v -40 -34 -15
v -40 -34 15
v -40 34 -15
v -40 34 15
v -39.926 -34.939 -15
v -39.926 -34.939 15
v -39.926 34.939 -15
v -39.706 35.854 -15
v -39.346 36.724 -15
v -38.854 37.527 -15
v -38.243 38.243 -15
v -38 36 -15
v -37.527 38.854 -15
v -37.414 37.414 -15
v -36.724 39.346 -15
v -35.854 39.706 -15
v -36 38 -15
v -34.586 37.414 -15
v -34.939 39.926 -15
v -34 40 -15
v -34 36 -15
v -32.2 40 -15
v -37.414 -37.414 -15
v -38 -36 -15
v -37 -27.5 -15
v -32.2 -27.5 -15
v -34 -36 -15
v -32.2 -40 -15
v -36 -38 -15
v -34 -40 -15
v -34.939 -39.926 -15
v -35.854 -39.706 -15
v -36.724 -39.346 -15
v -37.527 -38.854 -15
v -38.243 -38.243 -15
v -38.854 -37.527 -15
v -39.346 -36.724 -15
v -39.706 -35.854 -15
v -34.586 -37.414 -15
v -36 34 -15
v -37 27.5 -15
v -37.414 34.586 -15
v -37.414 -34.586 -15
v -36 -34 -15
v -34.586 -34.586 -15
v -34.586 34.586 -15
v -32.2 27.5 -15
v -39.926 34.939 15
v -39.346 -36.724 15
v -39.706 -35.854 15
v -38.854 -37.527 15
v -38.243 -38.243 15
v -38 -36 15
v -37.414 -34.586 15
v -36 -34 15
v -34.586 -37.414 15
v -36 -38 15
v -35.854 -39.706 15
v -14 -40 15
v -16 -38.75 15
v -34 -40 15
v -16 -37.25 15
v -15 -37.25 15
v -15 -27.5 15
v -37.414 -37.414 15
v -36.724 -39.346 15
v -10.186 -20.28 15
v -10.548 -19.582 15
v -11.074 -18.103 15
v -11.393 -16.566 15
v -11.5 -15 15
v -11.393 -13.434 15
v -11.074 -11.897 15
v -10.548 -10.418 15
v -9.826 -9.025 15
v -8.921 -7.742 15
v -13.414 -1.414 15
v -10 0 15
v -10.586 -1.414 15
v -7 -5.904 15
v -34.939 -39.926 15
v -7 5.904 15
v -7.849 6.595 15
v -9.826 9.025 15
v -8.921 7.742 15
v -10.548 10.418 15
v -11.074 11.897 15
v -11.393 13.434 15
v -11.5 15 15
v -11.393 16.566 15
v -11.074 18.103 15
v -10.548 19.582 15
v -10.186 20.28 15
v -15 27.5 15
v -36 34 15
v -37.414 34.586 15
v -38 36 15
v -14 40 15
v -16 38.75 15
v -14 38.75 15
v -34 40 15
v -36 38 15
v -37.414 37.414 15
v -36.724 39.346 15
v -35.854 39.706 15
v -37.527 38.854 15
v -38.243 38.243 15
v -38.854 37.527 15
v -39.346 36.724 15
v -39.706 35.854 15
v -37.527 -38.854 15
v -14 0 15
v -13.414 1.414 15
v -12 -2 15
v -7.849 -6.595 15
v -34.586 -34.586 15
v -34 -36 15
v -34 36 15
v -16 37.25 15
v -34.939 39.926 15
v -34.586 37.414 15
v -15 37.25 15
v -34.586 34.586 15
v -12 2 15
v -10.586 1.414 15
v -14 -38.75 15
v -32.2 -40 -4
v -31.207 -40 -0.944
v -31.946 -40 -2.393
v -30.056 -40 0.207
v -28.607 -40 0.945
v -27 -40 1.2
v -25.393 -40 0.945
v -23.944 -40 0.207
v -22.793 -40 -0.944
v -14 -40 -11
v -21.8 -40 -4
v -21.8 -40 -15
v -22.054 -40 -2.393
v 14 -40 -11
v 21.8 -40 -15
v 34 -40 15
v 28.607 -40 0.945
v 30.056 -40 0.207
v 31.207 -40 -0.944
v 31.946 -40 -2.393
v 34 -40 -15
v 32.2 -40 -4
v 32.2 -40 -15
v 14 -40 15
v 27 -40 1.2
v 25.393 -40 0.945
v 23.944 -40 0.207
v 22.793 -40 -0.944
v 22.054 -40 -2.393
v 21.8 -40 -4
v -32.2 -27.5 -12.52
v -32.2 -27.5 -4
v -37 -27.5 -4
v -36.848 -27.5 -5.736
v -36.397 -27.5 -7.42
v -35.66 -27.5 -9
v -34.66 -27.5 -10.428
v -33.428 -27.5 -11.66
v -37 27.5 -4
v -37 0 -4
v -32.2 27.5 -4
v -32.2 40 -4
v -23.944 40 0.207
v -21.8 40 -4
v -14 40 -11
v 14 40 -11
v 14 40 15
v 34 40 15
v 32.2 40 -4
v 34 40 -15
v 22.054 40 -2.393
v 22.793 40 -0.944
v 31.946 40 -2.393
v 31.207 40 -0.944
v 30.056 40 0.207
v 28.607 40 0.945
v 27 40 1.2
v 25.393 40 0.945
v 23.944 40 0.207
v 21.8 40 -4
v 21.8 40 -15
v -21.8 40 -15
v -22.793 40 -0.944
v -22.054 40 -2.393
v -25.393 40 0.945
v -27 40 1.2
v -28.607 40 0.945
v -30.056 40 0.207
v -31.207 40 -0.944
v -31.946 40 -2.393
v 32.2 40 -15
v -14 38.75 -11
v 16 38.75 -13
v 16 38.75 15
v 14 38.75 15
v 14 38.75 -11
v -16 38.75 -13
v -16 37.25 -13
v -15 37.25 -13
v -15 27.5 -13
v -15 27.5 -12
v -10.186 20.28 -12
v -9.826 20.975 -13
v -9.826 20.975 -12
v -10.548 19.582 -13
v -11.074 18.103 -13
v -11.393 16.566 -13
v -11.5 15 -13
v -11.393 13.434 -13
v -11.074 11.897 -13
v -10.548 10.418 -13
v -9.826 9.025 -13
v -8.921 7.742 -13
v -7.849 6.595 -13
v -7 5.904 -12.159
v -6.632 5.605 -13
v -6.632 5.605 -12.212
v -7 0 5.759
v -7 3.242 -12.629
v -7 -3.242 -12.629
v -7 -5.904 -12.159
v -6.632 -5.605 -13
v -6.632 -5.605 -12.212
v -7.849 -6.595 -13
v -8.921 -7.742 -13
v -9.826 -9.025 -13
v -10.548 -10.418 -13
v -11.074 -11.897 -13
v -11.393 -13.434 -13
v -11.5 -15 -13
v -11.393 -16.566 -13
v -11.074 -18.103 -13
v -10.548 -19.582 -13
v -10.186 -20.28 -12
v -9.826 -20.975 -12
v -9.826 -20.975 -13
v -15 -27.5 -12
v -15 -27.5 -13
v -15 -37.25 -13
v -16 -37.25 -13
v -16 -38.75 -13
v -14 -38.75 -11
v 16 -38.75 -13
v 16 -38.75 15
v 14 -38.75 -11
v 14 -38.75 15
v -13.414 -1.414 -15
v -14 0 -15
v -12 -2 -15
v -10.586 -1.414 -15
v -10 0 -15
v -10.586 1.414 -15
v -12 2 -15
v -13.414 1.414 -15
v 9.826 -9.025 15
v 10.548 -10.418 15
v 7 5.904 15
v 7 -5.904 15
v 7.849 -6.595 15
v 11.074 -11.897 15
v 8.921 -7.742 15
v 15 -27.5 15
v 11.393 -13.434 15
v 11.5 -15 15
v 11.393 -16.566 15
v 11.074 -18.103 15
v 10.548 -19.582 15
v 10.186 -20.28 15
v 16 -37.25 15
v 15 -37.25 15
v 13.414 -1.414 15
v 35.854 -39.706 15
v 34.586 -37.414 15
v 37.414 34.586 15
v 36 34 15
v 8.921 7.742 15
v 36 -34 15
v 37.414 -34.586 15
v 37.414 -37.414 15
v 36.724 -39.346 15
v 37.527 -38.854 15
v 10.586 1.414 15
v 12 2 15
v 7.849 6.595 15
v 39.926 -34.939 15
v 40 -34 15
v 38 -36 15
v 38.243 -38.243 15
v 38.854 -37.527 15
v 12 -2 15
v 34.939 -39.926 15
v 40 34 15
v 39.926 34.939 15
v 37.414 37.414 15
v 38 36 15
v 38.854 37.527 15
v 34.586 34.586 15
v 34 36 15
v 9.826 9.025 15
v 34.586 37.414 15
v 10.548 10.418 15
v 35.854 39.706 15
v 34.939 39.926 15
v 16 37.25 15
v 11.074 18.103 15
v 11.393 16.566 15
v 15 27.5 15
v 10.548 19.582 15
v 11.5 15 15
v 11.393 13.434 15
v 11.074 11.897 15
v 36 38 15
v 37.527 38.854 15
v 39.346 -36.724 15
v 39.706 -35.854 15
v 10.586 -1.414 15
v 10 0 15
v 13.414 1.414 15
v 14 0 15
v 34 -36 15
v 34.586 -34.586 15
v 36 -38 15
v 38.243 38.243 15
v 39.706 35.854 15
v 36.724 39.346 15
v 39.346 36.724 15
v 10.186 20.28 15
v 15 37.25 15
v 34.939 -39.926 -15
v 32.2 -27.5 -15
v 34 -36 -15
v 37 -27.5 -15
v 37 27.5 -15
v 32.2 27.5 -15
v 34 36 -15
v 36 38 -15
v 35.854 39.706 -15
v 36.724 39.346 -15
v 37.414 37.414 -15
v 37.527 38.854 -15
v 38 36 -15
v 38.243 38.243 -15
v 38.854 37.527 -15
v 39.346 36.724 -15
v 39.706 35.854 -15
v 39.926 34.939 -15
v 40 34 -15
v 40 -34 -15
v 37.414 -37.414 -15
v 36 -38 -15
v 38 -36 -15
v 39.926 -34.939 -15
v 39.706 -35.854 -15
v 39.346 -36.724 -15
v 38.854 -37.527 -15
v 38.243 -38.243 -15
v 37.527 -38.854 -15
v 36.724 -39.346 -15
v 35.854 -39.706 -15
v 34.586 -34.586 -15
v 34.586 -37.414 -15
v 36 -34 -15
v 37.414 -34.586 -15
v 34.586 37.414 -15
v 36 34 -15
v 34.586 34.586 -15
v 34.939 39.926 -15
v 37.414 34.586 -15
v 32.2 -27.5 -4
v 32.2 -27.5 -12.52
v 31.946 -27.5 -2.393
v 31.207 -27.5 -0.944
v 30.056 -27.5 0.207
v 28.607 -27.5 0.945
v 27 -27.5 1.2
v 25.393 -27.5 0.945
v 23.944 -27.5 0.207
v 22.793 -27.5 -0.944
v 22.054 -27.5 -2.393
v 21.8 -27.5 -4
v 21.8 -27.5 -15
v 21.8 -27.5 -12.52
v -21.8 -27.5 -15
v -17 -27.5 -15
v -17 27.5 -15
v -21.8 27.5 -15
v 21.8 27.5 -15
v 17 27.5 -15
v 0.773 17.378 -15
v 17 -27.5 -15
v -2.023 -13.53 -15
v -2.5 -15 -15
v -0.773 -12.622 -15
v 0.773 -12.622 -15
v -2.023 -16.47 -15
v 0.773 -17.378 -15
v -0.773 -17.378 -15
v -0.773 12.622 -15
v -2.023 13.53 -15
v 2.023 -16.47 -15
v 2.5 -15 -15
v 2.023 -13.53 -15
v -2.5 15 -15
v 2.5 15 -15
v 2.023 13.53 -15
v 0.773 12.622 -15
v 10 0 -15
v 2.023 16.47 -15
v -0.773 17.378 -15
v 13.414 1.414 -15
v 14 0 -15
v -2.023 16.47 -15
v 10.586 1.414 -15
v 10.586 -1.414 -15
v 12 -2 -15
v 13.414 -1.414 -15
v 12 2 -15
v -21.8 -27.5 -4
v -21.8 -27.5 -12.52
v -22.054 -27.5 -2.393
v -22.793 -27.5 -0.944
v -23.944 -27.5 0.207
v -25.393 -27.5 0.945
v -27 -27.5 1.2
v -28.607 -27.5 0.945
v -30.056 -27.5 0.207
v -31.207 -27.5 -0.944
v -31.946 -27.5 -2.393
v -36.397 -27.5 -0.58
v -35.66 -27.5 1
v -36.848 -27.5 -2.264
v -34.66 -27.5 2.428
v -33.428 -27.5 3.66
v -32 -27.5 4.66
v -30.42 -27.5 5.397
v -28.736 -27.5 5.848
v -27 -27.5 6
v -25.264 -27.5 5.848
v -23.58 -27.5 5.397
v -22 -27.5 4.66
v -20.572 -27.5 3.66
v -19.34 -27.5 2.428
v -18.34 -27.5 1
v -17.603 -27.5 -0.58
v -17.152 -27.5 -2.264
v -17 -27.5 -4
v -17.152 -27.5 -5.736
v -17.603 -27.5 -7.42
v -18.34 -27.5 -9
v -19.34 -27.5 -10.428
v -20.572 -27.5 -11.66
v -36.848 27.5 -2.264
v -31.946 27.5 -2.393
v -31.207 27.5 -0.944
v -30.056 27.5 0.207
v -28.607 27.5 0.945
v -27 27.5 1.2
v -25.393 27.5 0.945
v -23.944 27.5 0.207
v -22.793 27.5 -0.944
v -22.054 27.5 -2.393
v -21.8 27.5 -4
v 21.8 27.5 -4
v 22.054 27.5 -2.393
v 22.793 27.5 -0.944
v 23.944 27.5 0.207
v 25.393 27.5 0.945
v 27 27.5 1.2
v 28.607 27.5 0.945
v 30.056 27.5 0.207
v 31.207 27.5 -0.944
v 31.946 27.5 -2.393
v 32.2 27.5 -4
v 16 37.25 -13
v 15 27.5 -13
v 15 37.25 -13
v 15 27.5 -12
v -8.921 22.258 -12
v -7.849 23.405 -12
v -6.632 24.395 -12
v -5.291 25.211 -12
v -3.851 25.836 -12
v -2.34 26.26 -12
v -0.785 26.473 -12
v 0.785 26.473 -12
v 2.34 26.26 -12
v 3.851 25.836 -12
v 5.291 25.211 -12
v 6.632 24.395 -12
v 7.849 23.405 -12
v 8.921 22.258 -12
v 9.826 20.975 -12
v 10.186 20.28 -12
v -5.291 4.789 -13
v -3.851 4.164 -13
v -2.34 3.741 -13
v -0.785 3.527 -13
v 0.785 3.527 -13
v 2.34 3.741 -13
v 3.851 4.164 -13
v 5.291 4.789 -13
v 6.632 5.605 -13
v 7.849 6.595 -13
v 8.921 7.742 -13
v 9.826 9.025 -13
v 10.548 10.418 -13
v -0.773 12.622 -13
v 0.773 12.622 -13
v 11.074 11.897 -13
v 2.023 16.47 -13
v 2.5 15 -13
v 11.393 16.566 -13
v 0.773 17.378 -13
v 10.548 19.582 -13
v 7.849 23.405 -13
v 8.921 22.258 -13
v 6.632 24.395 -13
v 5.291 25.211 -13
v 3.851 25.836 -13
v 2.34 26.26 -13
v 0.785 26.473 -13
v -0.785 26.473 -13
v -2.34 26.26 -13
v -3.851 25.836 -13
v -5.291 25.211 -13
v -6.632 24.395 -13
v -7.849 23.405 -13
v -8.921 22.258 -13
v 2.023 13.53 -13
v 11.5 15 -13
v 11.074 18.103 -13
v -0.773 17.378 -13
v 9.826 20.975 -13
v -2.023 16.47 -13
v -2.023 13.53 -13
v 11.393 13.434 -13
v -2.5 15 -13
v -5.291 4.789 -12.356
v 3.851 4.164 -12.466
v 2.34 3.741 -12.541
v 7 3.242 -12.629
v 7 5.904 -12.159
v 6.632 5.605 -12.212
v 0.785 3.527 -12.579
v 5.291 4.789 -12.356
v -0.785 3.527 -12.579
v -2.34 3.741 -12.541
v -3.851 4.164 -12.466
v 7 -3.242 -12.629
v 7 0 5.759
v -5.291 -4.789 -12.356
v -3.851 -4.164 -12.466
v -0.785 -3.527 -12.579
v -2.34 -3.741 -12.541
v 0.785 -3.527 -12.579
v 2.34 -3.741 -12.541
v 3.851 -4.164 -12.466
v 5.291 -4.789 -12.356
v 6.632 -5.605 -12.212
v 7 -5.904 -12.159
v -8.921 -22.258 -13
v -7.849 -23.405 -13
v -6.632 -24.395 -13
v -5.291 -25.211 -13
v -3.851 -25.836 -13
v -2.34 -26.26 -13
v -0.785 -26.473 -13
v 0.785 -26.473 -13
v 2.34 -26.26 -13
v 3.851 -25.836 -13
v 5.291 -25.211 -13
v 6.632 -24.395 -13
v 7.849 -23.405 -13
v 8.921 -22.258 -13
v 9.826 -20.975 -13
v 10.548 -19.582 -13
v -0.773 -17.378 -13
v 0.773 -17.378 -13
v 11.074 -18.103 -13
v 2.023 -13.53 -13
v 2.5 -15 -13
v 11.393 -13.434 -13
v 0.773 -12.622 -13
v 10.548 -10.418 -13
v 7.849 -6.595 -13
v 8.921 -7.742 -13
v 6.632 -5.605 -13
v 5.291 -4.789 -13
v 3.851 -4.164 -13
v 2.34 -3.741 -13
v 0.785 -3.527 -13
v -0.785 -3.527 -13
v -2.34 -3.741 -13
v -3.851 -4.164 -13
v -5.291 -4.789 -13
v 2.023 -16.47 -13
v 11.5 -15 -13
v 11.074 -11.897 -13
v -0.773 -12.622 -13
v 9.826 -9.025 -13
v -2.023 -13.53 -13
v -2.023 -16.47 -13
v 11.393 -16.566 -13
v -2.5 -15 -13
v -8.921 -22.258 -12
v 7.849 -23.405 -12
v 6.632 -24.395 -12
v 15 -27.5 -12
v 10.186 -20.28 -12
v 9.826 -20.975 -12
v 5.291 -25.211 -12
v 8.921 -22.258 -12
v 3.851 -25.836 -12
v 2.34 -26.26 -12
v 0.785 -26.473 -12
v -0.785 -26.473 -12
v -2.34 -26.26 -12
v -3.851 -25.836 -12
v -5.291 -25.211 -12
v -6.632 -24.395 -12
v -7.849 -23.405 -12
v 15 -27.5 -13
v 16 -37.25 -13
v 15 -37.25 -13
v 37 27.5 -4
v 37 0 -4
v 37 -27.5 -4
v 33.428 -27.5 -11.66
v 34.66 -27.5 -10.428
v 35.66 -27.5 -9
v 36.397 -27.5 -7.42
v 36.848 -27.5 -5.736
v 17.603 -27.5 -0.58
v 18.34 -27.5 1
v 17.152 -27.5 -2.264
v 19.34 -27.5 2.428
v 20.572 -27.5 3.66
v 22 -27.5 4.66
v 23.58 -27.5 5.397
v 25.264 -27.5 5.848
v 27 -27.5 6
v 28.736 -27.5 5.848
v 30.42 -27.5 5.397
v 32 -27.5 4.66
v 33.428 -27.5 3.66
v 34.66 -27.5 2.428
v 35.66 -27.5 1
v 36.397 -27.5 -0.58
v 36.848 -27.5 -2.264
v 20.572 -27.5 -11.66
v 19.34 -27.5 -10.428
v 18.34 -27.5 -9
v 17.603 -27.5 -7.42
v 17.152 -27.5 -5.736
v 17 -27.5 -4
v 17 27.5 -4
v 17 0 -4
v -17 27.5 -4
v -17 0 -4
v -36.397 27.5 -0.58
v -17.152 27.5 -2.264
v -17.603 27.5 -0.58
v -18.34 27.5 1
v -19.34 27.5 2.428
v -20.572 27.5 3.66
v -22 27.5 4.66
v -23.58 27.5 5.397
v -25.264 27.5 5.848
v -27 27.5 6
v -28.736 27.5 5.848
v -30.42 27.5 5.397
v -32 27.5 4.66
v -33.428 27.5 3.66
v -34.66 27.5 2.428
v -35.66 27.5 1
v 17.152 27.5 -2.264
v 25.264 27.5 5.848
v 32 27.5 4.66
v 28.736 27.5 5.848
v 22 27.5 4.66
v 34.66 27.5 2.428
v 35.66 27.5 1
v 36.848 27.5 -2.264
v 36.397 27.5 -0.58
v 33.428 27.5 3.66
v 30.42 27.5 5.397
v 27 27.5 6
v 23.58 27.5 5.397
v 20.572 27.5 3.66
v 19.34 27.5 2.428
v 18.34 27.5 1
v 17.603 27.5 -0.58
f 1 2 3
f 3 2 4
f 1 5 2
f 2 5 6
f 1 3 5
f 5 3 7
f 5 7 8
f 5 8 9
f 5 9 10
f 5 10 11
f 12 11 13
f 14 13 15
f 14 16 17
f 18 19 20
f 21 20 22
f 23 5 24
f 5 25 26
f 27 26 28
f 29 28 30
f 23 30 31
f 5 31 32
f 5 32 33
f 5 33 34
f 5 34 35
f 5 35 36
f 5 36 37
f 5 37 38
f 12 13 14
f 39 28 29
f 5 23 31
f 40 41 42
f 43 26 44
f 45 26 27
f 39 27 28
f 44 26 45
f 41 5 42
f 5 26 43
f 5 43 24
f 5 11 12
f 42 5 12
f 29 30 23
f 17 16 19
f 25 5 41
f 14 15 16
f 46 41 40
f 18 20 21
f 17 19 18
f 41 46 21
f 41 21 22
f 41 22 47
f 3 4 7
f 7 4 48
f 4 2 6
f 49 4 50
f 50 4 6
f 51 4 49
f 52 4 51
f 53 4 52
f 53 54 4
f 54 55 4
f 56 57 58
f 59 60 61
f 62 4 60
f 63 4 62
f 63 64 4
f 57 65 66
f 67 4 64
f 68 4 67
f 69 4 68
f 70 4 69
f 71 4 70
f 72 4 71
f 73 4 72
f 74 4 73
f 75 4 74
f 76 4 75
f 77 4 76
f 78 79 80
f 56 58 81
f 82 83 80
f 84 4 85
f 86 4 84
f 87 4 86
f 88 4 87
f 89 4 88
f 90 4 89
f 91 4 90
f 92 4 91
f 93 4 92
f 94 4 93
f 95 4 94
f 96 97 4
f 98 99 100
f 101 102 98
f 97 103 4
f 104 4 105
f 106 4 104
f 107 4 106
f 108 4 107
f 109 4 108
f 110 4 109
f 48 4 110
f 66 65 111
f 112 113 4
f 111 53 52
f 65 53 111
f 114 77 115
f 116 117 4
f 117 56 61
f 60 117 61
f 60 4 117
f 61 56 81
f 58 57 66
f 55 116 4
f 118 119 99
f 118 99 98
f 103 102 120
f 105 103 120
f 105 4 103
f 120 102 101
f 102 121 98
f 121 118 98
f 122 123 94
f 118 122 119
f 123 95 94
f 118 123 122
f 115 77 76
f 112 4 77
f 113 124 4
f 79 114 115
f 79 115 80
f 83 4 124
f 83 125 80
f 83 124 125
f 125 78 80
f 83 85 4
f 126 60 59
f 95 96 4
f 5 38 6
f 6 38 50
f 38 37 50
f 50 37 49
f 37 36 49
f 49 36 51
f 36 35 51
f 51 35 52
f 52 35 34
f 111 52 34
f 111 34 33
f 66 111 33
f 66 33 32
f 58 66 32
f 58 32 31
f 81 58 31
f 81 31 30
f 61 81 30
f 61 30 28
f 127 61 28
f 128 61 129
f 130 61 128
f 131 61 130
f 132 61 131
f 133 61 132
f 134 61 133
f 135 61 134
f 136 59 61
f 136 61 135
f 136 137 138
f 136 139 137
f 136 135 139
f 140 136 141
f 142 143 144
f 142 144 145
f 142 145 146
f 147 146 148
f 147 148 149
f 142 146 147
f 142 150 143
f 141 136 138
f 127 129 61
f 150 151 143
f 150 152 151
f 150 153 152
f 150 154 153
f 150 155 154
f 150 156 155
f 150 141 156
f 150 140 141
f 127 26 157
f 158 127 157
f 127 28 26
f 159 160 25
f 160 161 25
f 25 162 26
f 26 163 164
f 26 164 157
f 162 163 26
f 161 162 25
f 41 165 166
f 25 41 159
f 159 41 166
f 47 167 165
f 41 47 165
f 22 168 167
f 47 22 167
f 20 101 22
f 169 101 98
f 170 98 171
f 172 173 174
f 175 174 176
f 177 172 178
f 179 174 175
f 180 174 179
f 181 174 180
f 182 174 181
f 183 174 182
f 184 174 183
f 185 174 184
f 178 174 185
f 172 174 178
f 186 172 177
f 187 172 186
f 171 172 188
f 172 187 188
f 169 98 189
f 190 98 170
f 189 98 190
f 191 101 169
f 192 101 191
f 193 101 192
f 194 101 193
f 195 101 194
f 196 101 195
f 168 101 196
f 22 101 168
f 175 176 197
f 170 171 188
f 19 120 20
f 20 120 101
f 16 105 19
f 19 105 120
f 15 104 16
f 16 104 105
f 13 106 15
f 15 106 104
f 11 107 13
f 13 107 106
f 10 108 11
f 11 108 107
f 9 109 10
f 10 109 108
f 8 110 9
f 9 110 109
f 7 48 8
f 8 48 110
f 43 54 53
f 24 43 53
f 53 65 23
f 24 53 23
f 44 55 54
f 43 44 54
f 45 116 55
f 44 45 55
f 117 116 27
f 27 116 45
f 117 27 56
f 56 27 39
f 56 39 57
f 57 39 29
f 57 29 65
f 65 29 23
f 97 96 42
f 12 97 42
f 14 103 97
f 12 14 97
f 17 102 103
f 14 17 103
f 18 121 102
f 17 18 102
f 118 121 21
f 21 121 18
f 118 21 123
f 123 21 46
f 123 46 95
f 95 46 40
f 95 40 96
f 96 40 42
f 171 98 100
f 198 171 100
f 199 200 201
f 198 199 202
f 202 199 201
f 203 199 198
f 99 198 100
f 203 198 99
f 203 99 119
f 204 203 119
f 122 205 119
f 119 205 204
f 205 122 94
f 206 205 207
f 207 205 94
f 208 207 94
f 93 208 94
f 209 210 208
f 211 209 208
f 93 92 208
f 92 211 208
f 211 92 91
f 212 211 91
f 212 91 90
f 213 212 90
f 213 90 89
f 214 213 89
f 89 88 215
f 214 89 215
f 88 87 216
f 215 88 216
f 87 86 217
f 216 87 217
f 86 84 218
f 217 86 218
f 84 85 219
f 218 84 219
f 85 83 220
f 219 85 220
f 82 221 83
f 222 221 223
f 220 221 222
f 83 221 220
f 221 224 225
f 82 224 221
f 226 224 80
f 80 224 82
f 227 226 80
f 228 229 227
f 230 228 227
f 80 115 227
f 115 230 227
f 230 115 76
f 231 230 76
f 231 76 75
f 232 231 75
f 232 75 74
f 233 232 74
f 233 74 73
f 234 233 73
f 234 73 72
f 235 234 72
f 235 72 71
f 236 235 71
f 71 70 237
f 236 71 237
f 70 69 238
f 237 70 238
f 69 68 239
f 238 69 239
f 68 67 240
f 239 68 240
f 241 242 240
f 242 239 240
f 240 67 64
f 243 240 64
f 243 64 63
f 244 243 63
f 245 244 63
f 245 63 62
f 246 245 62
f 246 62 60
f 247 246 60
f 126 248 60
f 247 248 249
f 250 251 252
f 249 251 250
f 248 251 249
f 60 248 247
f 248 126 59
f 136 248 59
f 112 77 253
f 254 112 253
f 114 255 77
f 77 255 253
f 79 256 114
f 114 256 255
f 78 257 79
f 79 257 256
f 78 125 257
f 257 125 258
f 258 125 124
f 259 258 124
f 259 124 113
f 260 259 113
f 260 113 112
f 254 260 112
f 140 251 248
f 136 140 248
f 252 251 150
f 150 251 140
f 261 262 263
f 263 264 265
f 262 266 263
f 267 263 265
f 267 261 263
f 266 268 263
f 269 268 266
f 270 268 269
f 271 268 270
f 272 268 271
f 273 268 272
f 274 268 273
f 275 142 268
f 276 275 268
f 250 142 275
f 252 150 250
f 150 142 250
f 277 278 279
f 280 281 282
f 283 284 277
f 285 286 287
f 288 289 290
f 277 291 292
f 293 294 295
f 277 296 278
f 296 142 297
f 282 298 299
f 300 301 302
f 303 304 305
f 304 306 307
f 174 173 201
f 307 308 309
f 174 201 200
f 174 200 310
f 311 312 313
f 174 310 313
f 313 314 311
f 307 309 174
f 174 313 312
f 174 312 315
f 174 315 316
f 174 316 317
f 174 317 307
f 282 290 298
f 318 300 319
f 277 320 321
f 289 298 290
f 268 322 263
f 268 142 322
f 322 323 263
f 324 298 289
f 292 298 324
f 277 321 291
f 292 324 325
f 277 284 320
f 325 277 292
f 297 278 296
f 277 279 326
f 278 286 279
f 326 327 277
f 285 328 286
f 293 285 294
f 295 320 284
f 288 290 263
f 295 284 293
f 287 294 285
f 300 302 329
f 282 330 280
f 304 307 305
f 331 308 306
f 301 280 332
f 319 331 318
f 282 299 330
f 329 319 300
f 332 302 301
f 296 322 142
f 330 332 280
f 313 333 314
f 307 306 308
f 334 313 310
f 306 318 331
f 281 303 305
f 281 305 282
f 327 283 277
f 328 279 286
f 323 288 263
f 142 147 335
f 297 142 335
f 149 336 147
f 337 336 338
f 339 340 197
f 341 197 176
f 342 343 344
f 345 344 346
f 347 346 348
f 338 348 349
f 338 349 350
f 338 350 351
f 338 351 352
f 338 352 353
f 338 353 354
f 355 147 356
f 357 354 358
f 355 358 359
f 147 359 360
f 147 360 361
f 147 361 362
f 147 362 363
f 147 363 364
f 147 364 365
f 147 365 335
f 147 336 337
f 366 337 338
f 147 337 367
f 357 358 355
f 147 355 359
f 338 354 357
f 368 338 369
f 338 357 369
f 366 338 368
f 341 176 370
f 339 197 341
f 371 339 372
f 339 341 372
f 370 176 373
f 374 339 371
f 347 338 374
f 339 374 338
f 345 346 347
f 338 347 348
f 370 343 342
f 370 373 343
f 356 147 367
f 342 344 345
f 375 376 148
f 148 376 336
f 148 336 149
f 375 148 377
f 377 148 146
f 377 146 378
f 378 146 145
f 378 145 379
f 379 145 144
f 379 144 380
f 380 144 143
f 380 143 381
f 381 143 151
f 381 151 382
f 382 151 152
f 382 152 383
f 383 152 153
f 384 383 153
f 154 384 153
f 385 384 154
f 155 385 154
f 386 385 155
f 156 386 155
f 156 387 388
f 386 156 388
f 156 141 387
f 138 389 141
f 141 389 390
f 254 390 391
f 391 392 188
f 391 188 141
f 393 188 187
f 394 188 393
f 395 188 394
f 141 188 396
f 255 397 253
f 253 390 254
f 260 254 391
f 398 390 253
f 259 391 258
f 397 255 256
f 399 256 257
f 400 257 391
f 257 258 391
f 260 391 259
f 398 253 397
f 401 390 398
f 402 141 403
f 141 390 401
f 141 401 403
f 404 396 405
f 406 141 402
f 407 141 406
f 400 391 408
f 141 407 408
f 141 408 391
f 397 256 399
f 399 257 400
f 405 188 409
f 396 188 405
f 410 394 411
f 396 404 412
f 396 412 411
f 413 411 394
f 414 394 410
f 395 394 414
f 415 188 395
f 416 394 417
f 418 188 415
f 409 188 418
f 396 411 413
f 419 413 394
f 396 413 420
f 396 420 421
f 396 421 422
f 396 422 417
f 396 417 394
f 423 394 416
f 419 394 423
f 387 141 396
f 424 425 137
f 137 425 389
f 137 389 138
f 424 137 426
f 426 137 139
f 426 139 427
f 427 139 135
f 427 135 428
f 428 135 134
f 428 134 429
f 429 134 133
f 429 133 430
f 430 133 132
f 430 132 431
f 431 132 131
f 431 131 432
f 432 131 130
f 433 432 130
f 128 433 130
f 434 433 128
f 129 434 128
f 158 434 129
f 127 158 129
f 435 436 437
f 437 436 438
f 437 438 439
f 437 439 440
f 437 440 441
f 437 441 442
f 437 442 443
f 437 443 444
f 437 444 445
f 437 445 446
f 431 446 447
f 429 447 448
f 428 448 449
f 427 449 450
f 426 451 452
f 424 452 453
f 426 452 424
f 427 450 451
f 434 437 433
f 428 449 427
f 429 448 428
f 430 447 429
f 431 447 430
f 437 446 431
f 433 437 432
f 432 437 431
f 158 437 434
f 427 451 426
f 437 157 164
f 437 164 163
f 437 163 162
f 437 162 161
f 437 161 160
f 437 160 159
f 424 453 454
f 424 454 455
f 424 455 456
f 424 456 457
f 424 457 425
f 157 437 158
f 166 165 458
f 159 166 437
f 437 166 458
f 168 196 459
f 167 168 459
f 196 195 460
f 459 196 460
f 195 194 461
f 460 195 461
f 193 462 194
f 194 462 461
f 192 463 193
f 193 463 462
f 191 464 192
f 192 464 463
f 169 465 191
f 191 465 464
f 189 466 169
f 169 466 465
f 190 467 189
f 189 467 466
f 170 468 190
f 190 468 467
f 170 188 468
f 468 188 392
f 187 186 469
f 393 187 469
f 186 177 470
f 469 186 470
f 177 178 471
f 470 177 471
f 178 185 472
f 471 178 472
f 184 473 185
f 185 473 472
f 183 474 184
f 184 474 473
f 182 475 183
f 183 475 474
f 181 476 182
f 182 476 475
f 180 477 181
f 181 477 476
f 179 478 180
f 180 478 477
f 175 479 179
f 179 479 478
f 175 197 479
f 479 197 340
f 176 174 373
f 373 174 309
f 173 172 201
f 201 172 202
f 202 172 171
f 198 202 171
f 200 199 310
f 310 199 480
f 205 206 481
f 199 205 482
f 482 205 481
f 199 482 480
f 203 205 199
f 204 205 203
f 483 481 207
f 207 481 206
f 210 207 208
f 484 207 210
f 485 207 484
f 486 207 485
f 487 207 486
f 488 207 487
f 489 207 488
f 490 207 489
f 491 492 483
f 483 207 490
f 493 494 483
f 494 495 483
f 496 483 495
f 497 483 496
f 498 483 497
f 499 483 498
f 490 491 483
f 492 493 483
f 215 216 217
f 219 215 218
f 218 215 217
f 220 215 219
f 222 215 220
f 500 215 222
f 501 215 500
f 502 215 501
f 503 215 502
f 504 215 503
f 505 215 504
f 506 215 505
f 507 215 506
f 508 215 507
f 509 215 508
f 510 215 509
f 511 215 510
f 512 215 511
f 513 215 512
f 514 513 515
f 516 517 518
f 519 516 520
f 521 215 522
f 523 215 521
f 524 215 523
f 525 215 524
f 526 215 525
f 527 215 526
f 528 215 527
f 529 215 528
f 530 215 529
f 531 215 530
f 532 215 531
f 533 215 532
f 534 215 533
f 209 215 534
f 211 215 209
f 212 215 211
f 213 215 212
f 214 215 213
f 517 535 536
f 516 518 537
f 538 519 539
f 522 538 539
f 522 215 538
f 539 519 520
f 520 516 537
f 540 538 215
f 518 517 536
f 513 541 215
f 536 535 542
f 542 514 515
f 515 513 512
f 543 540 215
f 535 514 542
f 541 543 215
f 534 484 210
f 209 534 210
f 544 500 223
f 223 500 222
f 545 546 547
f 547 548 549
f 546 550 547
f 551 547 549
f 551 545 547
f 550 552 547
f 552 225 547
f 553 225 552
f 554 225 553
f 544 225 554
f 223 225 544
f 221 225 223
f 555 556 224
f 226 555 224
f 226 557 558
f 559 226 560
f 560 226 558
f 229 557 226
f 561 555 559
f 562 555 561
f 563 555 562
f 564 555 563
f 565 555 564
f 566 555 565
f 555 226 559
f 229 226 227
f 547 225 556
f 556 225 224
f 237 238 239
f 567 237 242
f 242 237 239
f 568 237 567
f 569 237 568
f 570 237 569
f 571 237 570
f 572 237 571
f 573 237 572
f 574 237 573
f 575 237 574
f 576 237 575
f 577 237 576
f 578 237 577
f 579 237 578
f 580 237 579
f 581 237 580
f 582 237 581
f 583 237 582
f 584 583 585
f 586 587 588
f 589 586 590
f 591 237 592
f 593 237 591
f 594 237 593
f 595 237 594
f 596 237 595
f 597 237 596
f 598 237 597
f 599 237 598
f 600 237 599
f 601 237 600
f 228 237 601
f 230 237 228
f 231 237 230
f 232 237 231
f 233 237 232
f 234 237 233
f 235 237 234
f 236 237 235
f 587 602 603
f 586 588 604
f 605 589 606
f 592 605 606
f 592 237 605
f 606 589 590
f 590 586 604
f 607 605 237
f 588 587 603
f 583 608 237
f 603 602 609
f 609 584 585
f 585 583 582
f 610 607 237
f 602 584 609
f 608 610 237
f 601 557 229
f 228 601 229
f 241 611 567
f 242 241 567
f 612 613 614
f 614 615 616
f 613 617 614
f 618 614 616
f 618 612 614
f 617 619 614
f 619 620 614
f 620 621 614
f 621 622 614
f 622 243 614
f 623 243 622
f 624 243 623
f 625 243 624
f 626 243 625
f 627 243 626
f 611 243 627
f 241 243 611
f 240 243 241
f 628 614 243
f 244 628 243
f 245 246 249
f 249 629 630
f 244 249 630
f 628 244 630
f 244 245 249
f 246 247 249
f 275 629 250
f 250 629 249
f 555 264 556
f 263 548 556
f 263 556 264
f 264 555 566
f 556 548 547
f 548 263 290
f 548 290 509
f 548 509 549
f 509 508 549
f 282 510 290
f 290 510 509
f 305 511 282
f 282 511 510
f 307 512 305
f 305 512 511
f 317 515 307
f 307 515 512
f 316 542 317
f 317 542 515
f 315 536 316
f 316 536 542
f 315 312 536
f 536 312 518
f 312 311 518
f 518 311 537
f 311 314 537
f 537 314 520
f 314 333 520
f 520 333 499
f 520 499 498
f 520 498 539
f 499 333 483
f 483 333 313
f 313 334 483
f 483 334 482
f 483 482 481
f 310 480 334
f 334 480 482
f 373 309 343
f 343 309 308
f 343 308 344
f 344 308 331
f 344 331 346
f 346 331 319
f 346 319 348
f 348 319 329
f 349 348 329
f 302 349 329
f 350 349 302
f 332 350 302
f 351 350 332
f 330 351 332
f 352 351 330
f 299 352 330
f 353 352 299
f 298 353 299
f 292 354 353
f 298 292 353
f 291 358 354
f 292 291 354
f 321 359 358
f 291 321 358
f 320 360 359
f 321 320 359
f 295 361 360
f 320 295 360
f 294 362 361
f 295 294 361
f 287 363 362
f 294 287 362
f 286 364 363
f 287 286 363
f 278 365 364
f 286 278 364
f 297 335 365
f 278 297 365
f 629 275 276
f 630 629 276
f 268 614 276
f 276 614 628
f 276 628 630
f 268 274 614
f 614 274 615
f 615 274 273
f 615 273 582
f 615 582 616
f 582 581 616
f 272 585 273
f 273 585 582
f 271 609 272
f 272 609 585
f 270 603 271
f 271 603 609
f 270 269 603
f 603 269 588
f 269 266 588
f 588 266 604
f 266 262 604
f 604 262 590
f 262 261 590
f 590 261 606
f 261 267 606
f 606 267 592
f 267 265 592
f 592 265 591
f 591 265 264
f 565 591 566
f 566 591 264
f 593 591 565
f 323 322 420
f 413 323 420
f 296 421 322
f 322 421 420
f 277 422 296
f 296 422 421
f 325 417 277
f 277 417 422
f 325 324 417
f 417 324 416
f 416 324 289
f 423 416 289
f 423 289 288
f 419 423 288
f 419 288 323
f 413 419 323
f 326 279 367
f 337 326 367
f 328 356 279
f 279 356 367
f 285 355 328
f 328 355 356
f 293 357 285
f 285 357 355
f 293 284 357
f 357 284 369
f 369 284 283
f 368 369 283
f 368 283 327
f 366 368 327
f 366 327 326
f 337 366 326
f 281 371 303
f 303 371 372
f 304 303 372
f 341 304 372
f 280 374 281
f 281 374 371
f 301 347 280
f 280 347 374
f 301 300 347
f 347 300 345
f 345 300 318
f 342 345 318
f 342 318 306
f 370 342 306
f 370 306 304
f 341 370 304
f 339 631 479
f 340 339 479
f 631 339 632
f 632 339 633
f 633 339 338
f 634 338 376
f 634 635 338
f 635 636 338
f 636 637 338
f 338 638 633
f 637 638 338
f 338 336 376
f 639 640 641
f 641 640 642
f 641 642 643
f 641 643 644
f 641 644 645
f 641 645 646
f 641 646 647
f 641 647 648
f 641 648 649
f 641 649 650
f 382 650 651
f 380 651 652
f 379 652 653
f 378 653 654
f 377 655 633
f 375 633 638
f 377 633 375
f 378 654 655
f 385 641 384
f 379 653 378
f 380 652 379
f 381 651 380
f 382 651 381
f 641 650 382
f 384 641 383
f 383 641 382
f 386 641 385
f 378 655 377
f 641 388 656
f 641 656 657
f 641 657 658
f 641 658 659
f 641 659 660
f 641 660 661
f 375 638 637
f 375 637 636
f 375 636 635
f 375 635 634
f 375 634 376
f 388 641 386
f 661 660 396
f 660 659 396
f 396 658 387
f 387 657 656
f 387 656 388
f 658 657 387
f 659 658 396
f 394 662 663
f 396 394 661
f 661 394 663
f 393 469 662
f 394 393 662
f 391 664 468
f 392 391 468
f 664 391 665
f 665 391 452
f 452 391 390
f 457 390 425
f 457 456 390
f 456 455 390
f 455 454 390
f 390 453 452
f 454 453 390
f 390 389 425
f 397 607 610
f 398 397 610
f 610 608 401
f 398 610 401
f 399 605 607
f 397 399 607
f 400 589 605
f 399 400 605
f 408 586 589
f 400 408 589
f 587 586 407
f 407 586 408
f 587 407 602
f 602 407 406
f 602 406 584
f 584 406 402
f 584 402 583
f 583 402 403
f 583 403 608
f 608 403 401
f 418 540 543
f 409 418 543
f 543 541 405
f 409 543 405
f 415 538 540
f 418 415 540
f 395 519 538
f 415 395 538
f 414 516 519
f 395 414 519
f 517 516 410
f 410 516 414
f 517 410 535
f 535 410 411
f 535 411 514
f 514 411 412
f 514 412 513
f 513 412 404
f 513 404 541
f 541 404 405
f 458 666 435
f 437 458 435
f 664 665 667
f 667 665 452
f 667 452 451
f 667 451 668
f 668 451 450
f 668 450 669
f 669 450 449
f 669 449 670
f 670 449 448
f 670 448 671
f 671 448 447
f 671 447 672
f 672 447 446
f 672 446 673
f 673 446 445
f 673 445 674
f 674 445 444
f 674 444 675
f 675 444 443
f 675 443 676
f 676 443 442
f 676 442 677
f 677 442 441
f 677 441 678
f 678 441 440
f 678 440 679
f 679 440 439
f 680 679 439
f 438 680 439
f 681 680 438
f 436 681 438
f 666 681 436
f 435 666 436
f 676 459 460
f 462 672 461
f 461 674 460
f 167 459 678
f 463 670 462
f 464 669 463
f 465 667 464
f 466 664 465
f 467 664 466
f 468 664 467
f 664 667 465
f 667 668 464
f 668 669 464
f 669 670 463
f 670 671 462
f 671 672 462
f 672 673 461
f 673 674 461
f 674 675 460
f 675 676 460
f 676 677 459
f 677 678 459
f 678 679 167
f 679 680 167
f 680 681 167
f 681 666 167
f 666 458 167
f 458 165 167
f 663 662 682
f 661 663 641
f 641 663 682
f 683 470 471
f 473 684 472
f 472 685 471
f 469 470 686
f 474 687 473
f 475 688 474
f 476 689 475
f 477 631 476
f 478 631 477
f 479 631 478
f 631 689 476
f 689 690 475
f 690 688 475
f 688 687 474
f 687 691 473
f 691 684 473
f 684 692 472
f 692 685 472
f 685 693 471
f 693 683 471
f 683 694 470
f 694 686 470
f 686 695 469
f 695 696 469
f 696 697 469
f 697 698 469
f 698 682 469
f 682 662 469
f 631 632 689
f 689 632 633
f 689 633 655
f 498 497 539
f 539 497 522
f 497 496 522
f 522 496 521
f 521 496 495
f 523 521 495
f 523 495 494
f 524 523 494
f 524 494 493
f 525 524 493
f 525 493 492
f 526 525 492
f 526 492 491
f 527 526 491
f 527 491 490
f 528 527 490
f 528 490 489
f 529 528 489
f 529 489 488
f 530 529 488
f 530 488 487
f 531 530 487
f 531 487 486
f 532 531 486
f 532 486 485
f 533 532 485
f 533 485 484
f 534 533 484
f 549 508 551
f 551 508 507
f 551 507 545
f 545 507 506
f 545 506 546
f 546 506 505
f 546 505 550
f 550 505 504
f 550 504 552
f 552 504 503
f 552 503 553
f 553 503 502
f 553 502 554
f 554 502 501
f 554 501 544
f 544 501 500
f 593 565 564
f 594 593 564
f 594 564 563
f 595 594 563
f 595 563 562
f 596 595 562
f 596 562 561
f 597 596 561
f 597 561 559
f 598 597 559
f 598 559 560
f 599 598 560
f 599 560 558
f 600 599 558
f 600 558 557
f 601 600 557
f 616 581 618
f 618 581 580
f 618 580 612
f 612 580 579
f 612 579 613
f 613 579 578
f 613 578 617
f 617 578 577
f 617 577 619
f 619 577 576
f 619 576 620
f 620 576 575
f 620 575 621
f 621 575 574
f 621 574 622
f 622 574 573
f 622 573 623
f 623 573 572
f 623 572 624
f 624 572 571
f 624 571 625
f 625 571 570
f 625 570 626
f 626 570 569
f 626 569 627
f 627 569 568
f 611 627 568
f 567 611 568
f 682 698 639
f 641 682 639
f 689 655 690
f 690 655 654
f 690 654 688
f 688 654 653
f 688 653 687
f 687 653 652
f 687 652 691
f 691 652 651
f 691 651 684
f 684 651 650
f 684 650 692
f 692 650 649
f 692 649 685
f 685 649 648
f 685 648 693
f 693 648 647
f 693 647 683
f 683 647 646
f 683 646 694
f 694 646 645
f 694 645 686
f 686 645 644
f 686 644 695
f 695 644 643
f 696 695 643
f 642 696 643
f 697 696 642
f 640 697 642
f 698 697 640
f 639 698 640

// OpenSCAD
use <MCAD/boxes.scad>

module cutShaft(x) {
	rotate([90, 0, 0]) {
		// Bearings
		//translate([x, -4, 29])
			//cylinder(r=9, h=29, center=true, $fn=36);
		translate([x, -4, 0])
			cylinder(r=10, h=55, center=true, $fn=36);

		// Rods
		translate([x, -4, 0])
			cylinder(r=5.2, h=81, center=true, $fn=20);
	}

	translate([x, 0, -10]) {
		cube([10.4, 81, 12], center=true);
		cube([20, 55, 12], center=true);
	}
}

module airDuct(y1, y2) {
	polyhedron(
		points=[[ 15, y1, -12], [-15, y1, -12], 
				  [-10, y2, -12], [ 10, y2, -12],
				  [ 15, y1,  15], [-15, y1,  15], 
				  [-10, y2,  15], [ 10, y2,  15]],
				  
		faces=[[3, 2, 1, 0], [0, 1, 5, 4], [1, 2, 6, 5],
				 [2, 3, 7, 6], [4, 7, 3, 0], [4, 5, 6, 7]]
	);

	rotate([10, 0, 0])
		translate([0, 5, 2])
			cube([14, 8, 30], center=true);
	rotate([-10, 0, 0])
		translate([0, -5, 2])
			cube([14, 8, 30], center=true);
}

module grillSlot(y) {
	translate([0, y, 4])
		cube([28, 5, 30], center=true);

	translate([0, y, 2])
		cube([32, 1.5, 30], center=true);
}

difference() {
	roundedBox([80, 80, 30], 6, true, $fn=40);

	cutShaft(-27);
	cutShaft(27);
	
	// Cut extruder
	translate([0, 15, 2])
		cylinder(r=11.5, h=30, center=true, $fn=46);
	translate([0, -15, 2])
		cylinder(r=11.5, h=30, center=true, $fn=46);
	translate([0, 15, -13])
		cylinder(r=2.5, h=4, center=true, $fn=10);
	translate([0, -15, -13])
		cylinder(r=2.5, h=4, center=true, $fn=10);

	// Cut fan slots
	translate([0, -32.5, 2])
		cube([30, 10, 30], center=true);
	translate([0, 32.5, 2])
		cube([30, 10, 30], center=true);

	// Cut air ducts
	airDuct(-27.5, -20);
	airDuct( 27.5,  20);

	// Cut fan grill slots
	grillSlot(38);
	rotate([0, 0, 180])
		grillSlot(38);

	// Make screwholes
	translate([-36,  36, 0]) cylinder(r=2, h=31, center=true, $fn=8);
	translate([-12,   0, 0]) cylinder(r=2, h=31, center=true, $fn=8);
	translate([-36, -36, 0]) cylinder(r=2, h=31, center=true, $fn=8);
	translate([ 36, -36, 0]) cylinder(r=2, h=31, center=true, $fn=8);
	translate([ 12,   0, 0]) cylinder(r=2, h=31, center=true, $fn=8);
	translate([ 36,  36, 0]) cylinder(r=2, h=31, center=true, $fn=8);

	//fanGrill(-40);
	//fanGrill(40);
}
